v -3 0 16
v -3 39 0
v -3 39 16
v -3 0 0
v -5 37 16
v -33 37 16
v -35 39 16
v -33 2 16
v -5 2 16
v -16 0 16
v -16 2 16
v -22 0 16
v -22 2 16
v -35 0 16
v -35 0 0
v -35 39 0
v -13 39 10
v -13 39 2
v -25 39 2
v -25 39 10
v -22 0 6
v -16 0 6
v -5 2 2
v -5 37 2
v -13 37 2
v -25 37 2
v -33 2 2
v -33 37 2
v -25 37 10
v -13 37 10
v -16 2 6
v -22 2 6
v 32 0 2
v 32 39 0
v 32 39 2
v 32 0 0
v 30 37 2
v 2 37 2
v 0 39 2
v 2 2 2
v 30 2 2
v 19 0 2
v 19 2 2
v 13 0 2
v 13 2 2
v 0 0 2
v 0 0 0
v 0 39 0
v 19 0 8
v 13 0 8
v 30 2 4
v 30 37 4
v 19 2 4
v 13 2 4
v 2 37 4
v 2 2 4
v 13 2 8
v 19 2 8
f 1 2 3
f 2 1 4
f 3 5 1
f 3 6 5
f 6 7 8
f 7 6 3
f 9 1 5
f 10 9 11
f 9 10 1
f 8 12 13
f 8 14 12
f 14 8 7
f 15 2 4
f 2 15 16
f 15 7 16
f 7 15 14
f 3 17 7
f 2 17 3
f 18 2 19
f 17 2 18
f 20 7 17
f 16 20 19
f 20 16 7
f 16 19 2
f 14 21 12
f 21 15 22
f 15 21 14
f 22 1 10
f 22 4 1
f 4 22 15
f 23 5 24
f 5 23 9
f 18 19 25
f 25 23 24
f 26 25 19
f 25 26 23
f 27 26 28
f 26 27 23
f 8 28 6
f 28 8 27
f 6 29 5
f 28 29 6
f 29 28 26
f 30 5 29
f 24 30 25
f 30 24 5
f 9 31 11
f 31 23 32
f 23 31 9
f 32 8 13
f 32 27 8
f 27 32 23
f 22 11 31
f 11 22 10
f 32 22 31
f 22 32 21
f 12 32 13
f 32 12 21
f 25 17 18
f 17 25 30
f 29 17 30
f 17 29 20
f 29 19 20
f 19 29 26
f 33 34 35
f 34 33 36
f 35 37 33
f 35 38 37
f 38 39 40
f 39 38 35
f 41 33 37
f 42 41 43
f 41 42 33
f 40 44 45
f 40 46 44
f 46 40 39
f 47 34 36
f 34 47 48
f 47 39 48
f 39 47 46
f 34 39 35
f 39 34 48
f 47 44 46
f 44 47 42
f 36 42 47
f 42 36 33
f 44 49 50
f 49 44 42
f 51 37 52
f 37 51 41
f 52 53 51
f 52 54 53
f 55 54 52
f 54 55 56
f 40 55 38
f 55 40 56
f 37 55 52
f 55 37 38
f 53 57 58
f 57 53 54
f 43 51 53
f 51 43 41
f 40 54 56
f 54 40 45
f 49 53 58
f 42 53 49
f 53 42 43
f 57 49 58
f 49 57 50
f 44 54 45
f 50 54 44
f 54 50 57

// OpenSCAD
largeur = 28;
profondeur = 35;
hauteur = 14;
mur = 2;

translate([-35,0,0])
difference() {
	cube([largeur+mur*2,profondeur+mur*2,hauteur+mur]);
	translate([mur,mur,mur])
		cube([largeur,profondeur,20]);
	translate([largeur/2+mur-6/2,-1,mur+4])
		cube([6,mur*2,20]);
	translate([largeur/2+mur-12/2,profondeur+mur-1,mur])
		cube([12,mur*2,8]);
	/*translate([largeur/2+mur,profondeur/2+mur, -1])
		cylinder(4,2/2,10/2,$fn=32);	*/
}

cube([largeur+mur*2,profondeur+mur*2,mur]);
translate([mur, mur, mur])
	cube([largeur,profondeur,mur]);
translate([largeur/2+mur-6/2,0,mur])
	cube([6,mur,6]);
